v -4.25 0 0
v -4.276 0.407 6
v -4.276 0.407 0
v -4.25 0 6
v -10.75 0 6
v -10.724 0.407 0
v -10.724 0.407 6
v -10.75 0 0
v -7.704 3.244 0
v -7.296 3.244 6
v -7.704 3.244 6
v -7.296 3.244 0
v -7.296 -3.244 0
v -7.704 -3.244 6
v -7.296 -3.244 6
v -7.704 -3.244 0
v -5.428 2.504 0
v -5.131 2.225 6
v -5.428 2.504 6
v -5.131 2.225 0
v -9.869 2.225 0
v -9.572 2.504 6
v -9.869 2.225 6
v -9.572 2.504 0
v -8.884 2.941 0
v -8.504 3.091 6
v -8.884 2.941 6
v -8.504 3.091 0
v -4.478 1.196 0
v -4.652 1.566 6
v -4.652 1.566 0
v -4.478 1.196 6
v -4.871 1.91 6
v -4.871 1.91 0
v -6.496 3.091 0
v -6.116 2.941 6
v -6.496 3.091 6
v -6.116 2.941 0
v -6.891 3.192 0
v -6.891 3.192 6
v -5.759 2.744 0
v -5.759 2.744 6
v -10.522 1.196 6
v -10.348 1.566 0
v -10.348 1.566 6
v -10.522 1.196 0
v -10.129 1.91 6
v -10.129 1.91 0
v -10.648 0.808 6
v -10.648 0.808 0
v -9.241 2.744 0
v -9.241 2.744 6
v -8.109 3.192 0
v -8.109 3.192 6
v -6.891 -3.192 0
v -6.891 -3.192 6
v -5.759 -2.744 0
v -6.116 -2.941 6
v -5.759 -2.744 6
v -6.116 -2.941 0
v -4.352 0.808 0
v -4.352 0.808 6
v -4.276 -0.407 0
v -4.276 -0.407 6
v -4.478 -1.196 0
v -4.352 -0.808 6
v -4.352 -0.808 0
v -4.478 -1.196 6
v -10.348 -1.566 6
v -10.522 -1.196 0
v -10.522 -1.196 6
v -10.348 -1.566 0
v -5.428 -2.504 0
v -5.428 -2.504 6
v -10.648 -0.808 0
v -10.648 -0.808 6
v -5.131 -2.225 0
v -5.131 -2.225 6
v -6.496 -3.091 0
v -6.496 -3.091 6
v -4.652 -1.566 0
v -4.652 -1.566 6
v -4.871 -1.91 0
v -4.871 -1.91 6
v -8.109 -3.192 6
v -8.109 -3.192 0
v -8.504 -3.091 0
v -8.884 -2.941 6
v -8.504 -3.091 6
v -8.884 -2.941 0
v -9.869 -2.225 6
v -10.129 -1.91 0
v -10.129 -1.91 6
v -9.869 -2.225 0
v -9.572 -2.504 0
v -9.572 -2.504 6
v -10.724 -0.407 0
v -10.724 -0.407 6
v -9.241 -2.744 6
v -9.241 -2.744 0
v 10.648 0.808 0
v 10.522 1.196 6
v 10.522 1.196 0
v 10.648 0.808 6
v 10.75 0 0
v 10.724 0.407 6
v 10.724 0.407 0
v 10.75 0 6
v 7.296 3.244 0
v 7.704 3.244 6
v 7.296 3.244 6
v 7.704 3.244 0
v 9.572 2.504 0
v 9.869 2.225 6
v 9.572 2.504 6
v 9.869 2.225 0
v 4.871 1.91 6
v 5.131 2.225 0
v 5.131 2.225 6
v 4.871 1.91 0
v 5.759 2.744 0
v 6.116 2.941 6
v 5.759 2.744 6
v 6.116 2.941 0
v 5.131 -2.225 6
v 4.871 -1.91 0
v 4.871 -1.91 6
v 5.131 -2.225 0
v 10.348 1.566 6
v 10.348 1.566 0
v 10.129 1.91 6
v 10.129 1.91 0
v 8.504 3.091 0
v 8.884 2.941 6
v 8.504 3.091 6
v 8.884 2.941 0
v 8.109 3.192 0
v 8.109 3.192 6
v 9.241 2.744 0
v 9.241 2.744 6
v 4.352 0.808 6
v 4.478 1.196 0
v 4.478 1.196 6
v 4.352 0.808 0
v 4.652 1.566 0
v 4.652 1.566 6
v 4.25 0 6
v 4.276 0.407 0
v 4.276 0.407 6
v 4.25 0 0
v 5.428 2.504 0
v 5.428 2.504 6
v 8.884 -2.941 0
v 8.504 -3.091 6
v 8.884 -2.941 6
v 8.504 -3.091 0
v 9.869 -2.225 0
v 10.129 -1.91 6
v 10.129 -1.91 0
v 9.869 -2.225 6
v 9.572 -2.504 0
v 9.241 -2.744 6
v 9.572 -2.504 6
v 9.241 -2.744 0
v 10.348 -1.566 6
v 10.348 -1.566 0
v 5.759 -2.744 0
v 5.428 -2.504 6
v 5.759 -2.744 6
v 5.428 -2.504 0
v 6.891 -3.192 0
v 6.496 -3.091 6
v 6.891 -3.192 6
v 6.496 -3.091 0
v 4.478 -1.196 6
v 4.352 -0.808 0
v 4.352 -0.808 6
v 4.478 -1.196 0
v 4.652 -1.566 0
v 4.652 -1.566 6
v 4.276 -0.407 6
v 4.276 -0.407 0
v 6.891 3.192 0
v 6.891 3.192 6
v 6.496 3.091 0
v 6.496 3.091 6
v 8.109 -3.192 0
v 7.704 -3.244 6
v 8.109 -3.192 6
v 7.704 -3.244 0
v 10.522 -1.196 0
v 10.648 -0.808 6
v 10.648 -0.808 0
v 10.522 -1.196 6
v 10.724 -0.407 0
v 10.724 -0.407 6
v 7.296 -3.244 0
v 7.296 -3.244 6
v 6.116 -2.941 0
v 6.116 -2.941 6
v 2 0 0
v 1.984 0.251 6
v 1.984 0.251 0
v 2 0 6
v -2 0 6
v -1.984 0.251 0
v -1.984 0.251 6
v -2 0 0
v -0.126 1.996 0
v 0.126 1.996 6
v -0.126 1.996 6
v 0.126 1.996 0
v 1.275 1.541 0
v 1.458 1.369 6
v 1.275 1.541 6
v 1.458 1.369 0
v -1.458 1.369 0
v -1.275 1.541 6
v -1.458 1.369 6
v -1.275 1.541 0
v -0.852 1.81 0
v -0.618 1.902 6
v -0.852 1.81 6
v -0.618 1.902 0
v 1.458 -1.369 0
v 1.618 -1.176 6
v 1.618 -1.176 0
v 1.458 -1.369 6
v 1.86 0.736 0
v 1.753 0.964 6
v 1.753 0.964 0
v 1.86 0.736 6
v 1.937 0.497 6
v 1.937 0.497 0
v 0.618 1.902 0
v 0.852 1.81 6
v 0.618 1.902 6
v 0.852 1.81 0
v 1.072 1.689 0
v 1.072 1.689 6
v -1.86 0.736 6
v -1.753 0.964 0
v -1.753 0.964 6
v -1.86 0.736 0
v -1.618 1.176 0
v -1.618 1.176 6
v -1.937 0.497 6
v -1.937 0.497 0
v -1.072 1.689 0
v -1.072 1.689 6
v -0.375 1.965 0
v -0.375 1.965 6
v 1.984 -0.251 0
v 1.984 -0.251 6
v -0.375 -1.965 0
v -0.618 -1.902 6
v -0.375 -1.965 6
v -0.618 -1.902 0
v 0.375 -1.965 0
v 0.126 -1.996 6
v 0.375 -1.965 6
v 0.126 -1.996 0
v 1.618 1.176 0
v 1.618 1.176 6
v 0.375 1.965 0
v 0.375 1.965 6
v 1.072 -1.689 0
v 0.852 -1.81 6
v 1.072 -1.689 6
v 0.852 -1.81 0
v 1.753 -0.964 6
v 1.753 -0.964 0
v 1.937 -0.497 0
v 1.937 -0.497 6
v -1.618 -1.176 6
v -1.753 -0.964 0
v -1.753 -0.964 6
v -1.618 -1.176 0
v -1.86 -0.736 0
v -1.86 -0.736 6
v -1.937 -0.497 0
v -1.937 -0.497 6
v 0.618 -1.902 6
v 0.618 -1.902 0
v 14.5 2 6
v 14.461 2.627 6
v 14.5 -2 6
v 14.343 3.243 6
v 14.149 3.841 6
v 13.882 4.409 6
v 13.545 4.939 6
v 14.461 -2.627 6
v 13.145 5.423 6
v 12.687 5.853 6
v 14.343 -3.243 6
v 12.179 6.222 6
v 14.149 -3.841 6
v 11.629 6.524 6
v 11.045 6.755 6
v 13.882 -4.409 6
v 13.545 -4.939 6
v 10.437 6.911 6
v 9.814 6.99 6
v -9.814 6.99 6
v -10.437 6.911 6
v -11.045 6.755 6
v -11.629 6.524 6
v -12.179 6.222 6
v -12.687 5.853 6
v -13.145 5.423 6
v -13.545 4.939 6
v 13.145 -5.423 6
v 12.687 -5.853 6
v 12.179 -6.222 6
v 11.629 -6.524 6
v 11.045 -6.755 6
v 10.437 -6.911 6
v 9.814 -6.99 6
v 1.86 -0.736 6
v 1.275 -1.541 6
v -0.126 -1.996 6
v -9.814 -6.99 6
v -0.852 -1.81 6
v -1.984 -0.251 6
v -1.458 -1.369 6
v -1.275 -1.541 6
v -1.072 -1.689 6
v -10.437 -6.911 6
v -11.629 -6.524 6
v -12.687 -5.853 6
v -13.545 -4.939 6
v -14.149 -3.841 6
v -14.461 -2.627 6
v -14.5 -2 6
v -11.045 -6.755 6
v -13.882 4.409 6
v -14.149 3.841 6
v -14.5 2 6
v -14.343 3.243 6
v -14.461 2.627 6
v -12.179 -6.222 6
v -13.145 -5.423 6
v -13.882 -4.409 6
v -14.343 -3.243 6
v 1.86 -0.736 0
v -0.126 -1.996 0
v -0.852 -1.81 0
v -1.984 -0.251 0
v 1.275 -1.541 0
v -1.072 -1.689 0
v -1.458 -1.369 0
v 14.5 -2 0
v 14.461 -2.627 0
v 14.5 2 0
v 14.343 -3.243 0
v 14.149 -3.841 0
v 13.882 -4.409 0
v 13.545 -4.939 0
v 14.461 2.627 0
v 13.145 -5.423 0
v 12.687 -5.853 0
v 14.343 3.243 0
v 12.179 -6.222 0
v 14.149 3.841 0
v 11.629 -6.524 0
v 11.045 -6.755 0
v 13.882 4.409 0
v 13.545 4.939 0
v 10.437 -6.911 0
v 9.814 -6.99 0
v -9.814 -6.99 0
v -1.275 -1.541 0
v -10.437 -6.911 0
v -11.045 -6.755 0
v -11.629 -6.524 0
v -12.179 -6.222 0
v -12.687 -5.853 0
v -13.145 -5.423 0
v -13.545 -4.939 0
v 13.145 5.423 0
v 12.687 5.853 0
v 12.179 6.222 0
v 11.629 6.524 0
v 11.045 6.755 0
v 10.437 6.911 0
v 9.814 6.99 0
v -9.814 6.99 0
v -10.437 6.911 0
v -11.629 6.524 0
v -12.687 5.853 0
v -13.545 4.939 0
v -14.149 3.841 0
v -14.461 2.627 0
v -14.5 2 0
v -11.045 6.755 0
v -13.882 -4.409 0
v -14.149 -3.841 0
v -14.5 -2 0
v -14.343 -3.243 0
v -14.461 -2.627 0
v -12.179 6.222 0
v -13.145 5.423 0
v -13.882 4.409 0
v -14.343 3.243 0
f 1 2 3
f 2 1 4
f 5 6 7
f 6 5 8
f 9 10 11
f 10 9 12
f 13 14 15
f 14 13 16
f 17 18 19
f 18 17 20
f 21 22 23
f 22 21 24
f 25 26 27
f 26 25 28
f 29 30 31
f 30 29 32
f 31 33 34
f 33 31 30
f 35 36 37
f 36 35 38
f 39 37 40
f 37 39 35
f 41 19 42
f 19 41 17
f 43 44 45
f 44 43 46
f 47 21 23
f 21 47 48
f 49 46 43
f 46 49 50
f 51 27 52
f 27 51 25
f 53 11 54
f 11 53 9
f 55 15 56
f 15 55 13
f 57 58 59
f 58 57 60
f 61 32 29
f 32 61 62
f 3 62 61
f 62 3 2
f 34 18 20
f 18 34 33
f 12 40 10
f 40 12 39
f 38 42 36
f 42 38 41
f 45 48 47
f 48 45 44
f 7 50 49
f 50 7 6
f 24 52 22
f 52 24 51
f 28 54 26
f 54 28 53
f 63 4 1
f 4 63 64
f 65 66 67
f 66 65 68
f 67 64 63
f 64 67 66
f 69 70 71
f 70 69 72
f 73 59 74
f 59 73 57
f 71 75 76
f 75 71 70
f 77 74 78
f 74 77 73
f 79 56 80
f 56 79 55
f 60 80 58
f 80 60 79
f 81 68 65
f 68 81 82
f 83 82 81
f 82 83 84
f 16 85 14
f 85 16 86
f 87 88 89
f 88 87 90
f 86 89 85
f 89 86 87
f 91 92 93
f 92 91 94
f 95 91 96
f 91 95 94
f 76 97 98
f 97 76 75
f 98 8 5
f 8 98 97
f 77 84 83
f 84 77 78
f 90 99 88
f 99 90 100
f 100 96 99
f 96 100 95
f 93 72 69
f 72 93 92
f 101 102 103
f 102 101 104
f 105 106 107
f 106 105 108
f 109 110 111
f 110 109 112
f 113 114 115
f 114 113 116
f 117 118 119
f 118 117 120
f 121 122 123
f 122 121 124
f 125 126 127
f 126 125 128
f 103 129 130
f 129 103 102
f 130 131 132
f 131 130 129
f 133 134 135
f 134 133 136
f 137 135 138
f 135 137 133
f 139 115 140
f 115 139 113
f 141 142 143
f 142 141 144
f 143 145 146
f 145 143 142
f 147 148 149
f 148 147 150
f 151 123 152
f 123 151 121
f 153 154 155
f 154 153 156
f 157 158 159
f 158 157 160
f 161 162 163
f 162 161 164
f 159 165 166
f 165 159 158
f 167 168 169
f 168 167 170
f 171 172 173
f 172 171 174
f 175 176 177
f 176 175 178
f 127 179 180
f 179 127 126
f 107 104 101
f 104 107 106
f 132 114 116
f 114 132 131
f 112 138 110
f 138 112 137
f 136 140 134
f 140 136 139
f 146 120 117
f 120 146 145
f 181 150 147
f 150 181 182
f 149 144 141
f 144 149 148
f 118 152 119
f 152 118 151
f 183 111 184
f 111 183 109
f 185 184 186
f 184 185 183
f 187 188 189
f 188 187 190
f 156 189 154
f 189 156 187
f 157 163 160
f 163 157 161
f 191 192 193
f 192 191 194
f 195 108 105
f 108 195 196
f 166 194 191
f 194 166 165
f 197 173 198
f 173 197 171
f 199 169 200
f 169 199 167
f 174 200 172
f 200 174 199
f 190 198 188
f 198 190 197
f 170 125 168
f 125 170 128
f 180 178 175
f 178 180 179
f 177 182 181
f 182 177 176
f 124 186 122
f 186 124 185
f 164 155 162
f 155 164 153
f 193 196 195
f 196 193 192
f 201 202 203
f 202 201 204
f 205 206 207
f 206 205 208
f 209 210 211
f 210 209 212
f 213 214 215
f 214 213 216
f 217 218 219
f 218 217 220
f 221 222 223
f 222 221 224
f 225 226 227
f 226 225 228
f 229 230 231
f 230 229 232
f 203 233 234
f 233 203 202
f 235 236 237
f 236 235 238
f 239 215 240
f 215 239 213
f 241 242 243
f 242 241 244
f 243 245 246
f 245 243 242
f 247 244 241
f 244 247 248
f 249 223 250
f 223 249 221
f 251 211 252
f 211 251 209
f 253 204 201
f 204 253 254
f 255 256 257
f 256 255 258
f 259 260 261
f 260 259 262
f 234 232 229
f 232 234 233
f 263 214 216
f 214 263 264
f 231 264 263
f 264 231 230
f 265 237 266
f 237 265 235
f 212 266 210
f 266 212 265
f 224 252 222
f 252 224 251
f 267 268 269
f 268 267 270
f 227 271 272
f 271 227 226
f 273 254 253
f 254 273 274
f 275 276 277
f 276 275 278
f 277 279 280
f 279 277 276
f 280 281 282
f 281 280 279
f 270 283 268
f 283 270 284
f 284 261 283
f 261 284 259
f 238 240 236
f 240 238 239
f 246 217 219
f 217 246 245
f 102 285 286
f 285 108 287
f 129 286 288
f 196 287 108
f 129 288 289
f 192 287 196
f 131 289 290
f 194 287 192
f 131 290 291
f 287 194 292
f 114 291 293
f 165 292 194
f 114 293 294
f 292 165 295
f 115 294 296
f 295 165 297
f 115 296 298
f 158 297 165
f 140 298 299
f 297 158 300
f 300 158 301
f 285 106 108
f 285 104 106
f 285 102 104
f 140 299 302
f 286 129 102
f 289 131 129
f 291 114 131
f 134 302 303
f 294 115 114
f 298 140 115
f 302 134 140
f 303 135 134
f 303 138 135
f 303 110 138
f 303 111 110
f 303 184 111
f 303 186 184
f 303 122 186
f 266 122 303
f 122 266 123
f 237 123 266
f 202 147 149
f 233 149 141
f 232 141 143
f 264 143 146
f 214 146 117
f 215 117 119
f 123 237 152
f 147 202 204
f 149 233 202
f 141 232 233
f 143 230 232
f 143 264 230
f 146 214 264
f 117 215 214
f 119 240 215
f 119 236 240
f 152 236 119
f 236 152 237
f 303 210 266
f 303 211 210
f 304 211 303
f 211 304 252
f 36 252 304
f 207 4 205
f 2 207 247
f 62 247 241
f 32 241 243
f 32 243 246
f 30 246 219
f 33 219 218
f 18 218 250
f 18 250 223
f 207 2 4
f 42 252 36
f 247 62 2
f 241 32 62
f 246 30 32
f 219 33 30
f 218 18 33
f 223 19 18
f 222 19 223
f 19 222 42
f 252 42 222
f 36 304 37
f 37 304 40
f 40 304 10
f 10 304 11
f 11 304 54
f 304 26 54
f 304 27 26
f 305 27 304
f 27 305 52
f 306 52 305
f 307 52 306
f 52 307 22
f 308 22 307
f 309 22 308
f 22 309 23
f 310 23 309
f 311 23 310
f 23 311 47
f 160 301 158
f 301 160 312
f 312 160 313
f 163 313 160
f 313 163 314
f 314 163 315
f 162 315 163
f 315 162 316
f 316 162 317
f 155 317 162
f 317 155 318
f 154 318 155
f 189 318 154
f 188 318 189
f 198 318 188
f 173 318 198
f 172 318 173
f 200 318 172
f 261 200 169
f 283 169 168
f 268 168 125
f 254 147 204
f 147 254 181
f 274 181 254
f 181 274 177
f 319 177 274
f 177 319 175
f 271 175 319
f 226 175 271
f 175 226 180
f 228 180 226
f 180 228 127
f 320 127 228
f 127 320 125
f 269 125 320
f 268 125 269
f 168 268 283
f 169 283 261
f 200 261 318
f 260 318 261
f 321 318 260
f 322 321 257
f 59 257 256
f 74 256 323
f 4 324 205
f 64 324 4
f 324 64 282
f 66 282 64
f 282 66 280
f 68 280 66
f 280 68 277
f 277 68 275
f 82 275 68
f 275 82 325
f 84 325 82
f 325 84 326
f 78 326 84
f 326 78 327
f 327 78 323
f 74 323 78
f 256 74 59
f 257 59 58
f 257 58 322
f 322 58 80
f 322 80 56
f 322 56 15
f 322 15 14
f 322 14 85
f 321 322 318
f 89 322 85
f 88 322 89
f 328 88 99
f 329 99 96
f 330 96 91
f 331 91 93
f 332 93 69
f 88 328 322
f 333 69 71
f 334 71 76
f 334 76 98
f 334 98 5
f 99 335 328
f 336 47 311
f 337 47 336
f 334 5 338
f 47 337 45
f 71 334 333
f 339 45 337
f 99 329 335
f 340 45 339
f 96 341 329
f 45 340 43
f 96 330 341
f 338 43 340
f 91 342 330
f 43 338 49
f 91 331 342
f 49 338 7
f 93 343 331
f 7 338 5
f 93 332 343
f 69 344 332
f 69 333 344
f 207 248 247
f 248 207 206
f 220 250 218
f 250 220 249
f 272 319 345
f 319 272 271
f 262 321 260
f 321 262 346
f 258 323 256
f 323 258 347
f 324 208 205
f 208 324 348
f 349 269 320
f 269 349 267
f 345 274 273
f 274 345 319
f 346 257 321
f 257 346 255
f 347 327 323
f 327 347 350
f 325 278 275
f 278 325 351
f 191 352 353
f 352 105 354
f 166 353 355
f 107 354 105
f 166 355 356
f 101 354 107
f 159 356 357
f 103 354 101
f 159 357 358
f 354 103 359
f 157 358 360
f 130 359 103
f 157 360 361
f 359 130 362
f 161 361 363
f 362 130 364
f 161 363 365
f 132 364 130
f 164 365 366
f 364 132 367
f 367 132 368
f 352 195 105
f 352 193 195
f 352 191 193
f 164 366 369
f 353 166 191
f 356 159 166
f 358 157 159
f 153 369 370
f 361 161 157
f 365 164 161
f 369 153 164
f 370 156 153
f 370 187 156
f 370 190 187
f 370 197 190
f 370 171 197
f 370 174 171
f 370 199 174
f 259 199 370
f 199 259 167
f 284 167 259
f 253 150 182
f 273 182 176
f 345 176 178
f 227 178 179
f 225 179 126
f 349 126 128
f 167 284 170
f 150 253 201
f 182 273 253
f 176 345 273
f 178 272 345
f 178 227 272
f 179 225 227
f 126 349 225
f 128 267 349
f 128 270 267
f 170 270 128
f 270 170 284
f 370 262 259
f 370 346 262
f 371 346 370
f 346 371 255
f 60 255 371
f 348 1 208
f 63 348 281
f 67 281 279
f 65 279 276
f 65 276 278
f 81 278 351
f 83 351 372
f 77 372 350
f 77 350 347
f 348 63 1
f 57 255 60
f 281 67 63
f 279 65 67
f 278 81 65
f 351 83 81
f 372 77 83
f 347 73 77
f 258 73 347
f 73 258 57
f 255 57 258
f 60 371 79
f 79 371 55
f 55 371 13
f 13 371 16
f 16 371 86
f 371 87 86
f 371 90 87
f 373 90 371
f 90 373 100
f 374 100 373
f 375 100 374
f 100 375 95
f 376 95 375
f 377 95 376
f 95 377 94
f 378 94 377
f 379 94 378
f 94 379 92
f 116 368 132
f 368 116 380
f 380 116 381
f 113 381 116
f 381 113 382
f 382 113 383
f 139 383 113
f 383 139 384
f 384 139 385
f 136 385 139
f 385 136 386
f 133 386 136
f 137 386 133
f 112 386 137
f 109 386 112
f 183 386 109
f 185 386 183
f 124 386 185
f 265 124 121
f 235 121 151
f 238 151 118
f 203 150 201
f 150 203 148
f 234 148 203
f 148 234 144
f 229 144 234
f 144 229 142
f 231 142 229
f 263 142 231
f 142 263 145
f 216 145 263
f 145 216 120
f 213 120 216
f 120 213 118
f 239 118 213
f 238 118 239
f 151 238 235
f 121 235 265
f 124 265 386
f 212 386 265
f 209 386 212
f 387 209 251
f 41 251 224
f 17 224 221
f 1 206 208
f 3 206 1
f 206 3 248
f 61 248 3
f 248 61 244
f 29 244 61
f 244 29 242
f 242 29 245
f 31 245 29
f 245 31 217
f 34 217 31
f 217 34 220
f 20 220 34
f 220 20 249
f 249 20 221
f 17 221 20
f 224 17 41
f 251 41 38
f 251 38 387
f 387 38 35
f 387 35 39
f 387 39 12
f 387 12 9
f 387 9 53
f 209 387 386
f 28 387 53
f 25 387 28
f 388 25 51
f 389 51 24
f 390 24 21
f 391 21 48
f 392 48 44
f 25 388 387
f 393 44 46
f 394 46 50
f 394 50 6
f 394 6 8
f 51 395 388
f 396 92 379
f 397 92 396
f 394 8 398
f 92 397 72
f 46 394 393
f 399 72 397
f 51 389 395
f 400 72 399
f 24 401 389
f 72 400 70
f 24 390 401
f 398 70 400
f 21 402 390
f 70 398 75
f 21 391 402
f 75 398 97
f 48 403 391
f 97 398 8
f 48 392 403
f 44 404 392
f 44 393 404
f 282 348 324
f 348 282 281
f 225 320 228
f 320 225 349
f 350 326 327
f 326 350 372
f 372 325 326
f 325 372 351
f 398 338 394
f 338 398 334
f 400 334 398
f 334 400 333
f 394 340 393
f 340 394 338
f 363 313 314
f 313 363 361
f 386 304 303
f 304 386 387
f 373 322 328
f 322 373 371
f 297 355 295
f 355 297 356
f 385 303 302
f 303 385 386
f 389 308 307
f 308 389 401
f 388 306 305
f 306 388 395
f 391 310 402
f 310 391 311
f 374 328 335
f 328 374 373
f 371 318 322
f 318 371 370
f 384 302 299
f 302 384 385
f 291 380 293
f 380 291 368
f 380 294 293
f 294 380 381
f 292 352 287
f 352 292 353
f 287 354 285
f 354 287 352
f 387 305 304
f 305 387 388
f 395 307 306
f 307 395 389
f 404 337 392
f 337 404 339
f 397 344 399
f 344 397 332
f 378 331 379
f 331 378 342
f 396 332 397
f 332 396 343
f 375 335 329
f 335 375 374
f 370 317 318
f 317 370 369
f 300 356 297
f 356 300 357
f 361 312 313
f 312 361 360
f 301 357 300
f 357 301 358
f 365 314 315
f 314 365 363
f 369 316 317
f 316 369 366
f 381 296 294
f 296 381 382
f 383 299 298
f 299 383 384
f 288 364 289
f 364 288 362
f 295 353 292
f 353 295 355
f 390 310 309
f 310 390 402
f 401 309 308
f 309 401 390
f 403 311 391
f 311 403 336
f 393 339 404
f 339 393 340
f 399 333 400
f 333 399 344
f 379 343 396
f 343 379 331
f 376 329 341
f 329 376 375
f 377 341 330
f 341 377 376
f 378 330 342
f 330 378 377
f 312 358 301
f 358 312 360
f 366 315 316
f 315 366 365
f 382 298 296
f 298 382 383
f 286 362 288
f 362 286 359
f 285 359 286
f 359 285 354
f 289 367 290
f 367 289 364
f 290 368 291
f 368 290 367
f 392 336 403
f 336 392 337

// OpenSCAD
$fn = 50;


difference() {
	union() {
		hull() {
			translate(v = [-9.5000000000, 2.0000000000, 0]) {
				cylinder(h = 6, r = 5);
			}
			translate(v = [9.5000000000, 2.0000000000, 0]) {
				cylinder(h = 6, r = 5);
			}
			translate(v = [-9.5000000000, -2.0000000000, 0]) {
				cylinder(h = 6, r = 5);
			}
			translate(v = [9.5000000000, -2.0000000000, 0]) {
				cylinder(h = 6, r = 5);
			}
		}
	}
	union() {
		#translate(v = [-7.5000000000, 0.0000000000, 0]) {
			cylinder(h = 6, r = 3.2500000000);
		}
		#translate(v = [7.5000000000, 0.0000000000, 0]) {
			cylinder(h = 6, r = 3.2500000000);
		}
		#translate(v = [-7.5000000000, 0.0000000000, -100.0000000000]) {
			cylinder(h = 200, r = 3.2500000000);
		}
		#translate(v = [-7.5000000000, 0.0000000000, -100.0000000000]) {
			cylinder(h = 200, r = 3.2500000000);
		}
		#translate(v = [7.5000000000, 0.0000000000, -100.0000000000]) {
			cylinder(h = 200, r = 3.2500000000);
		}
		#translate(v = [7.5000000000, 0.0000000000, -100.0000000000]) {
			cylinder(h = 200, r = 3.2500000000);
		}
		#translate(v = [-7.5000000000, 0.0000000000, 0]) {
			cylinder(h = 6, r = 1.8000000000);
		}
		#translate(v = [7.5000000000, 0.0000000000, 0]) {
			cylinder(h = 6, r = 1.8000000000);
		}
		#translate(v = [-7.5000000000, 0.0000000000, 0]) {
			cylinder(h = 6, r = 1.8000000000);
		}
		#translate(v = [7.5000000000, 0.0000000000, 0]) {
			cylinder(h = 6, r = 1.8000000000);
		}
		#translate(v = [-7.5000000000, 0.0000000000, 0]) {
			cylinder(h = 6, r = 1.8000000000);
		}
		#translate(v = [7.5000000000, 0.0000000000, 0]) {
			cylinder(h = 6, r = 1.8000000000);
		}
		#cylinder(h = 6, r = 2.0000000000);
	}
}
